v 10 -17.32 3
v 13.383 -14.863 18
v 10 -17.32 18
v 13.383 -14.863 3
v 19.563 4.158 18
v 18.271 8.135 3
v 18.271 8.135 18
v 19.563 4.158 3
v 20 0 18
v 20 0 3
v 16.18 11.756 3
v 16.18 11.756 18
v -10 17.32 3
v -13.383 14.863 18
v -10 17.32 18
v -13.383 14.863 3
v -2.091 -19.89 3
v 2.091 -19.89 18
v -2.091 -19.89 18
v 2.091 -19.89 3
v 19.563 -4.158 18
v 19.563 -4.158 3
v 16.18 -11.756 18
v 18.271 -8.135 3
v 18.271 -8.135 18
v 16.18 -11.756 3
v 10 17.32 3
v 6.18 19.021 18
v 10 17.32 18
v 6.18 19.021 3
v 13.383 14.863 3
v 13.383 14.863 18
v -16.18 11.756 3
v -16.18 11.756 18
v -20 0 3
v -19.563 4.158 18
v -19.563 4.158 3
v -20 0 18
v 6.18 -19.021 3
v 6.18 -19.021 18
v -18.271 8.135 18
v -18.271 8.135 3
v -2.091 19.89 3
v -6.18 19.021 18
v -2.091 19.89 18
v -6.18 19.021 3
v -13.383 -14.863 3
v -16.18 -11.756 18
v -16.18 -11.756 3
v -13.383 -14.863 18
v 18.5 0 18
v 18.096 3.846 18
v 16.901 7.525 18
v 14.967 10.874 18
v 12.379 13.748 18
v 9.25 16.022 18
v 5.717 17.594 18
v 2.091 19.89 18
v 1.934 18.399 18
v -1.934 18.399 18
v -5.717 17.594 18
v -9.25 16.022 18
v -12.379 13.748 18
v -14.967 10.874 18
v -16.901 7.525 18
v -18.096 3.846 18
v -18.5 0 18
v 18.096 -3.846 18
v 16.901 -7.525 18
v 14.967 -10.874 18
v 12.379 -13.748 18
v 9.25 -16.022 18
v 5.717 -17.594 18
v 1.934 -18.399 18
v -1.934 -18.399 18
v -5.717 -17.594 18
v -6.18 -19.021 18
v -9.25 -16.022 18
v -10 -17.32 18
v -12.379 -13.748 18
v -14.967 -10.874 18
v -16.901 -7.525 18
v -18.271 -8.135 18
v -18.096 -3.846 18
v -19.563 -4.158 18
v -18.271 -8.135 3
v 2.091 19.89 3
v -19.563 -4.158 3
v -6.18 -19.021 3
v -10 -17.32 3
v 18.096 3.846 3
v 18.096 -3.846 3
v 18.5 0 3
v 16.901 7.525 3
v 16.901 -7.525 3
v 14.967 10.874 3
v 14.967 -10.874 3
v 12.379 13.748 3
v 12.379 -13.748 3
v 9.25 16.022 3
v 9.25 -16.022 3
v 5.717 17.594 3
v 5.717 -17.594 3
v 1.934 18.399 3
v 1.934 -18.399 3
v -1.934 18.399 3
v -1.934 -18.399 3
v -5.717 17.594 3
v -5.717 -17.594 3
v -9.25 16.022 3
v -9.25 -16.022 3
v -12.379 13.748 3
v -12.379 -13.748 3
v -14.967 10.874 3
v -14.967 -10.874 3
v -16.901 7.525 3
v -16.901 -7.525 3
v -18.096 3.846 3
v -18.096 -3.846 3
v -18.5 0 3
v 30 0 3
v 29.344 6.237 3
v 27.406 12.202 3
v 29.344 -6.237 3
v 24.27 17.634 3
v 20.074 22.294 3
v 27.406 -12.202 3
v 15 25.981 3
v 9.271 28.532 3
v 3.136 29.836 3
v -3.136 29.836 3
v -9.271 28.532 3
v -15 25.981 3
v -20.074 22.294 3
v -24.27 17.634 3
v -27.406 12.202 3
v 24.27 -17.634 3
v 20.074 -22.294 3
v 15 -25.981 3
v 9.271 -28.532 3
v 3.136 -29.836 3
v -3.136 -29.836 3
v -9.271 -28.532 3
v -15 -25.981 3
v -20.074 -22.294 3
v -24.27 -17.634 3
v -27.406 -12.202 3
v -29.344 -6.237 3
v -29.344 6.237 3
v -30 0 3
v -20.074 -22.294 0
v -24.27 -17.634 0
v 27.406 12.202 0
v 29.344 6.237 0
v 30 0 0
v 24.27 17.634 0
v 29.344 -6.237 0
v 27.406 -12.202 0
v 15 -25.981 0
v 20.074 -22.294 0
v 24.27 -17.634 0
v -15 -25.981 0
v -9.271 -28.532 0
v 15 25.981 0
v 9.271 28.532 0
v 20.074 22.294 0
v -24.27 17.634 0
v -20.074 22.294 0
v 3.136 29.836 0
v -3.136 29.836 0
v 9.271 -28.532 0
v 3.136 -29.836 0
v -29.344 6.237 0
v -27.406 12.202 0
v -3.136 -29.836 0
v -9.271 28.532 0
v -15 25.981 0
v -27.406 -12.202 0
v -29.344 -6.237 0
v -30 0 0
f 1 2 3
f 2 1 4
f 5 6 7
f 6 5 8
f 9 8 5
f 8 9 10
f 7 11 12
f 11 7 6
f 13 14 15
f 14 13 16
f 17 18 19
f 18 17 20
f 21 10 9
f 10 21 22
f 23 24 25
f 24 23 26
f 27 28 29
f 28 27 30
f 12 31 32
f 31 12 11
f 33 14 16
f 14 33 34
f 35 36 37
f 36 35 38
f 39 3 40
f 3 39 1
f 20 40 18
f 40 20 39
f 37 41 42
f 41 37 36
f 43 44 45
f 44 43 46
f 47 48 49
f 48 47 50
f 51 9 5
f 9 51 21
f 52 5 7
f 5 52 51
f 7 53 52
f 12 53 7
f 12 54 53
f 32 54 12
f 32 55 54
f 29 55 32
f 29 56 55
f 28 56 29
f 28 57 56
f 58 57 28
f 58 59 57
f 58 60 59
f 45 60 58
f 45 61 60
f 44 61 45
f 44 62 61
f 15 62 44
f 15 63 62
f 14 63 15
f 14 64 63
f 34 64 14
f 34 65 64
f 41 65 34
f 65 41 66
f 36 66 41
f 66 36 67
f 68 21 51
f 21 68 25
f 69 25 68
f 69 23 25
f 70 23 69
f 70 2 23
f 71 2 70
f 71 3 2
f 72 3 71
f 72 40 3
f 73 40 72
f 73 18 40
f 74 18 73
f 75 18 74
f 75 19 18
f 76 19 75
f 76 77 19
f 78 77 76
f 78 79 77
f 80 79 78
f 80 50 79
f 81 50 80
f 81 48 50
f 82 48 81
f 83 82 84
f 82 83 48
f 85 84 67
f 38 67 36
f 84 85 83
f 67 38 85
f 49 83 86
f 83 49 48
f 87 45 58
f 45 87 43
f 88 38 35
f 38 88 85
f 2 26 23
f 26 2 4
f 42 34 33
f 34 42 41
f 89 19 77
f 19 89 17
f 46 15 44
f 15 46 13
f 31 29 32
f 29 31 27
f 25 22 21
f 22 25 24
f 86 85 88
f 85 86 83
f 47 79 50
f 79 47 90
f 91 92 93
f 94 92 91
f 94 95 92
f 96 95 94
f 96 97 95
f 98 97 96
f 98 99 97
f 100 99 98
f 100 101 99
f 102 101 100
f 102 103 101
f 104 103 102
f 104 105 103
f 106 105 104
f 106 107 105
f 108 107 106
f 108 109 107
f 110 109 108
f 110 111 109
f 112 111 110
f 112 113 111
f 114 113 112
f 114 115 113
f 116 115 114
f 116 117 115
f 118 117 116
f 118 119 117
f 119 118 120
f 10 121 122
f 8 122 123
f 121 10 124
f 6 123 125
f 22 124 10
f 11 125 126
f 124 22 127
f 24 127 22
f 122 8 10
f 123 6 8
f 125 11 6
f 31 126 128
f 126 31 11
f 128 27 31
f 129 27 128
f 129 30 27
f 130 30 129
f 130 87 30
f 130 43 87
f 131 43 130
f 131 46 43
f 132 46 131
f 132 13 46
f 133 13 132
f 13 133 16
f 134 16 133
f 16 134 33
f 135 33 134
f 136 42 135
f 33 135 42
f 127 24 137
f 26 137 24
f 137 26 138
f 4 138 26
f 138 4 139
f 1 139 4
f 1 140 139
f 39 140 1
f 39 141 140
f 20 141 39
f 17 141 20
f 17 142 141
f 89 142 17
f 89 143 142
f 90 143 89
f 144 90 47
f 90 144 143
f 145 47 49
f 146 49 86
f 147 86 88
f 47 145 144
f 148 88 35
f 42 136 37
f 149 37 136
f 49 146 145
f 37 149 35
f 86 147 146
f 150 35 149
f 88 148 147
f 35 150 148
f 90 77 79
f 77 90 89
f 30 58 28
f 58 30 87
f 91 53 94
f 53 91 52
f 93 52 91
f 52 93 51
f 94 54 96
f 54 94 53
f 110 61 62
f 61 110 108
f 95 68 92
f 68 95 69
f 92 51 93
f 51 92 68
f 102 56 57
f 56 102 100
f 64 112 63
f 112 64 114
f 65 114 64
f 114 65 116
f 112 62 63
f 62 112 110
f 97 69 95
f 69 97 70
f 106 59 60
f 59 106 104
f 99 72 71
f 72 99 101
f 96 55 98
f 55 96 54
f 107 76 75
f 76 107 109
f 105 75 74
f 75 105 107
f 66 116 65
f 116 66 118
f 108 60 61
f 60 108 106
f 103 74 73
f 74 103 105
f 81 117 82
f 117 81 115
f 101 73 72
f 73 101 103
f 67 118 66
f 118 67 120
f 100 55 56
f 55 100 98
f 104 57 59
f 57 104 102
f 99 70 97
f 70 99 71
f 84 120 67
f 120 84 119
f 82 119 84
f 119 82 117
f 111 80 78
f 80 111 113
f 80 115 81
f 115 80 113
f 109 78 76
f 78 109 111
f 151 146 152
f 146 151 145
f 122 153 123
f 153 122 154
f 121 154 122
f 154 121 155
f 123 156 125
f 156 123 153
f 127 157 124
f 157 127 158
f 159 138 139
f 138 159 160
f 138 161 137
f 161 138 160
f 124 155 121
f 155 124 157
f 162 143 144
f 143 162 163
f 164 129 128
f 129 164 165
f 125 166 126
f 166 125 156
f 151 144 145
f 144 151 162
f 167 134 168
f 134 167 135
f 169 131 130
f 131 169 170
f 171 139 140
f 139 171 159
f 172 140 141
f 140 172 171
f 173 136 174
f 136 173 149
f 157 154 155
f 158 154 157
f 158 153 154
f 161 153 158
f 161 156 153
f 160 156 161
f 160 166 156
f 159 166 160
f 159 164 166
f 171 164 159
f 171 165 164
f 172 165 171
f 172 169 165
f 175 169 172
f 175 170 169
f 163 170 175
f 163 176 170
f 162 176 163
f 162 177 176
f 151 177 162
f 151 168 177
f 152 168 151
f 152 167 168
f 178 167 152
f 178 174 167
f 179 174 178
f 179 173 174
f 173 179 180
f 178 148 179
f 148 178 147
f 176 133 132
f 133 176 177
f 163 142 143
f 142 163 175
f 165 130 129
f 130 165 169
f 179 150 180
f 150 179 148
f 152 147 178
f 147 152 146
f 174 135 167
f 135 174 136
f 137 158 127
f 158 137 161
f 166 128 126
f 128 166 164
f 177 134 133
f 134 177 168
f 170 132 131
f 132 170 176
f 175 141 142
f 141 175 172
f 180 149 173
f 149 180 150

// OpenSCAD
wall   =  3;
diam   = 60;
inner  = 40;
height = 15;

cylinder( d = diam, h = wall );

translate( [ 0, 0, wall ] )
difference() {
    cylinder( d = inner, h = height );
    cylinder( d = inner-wall, h = height+1 );
}
